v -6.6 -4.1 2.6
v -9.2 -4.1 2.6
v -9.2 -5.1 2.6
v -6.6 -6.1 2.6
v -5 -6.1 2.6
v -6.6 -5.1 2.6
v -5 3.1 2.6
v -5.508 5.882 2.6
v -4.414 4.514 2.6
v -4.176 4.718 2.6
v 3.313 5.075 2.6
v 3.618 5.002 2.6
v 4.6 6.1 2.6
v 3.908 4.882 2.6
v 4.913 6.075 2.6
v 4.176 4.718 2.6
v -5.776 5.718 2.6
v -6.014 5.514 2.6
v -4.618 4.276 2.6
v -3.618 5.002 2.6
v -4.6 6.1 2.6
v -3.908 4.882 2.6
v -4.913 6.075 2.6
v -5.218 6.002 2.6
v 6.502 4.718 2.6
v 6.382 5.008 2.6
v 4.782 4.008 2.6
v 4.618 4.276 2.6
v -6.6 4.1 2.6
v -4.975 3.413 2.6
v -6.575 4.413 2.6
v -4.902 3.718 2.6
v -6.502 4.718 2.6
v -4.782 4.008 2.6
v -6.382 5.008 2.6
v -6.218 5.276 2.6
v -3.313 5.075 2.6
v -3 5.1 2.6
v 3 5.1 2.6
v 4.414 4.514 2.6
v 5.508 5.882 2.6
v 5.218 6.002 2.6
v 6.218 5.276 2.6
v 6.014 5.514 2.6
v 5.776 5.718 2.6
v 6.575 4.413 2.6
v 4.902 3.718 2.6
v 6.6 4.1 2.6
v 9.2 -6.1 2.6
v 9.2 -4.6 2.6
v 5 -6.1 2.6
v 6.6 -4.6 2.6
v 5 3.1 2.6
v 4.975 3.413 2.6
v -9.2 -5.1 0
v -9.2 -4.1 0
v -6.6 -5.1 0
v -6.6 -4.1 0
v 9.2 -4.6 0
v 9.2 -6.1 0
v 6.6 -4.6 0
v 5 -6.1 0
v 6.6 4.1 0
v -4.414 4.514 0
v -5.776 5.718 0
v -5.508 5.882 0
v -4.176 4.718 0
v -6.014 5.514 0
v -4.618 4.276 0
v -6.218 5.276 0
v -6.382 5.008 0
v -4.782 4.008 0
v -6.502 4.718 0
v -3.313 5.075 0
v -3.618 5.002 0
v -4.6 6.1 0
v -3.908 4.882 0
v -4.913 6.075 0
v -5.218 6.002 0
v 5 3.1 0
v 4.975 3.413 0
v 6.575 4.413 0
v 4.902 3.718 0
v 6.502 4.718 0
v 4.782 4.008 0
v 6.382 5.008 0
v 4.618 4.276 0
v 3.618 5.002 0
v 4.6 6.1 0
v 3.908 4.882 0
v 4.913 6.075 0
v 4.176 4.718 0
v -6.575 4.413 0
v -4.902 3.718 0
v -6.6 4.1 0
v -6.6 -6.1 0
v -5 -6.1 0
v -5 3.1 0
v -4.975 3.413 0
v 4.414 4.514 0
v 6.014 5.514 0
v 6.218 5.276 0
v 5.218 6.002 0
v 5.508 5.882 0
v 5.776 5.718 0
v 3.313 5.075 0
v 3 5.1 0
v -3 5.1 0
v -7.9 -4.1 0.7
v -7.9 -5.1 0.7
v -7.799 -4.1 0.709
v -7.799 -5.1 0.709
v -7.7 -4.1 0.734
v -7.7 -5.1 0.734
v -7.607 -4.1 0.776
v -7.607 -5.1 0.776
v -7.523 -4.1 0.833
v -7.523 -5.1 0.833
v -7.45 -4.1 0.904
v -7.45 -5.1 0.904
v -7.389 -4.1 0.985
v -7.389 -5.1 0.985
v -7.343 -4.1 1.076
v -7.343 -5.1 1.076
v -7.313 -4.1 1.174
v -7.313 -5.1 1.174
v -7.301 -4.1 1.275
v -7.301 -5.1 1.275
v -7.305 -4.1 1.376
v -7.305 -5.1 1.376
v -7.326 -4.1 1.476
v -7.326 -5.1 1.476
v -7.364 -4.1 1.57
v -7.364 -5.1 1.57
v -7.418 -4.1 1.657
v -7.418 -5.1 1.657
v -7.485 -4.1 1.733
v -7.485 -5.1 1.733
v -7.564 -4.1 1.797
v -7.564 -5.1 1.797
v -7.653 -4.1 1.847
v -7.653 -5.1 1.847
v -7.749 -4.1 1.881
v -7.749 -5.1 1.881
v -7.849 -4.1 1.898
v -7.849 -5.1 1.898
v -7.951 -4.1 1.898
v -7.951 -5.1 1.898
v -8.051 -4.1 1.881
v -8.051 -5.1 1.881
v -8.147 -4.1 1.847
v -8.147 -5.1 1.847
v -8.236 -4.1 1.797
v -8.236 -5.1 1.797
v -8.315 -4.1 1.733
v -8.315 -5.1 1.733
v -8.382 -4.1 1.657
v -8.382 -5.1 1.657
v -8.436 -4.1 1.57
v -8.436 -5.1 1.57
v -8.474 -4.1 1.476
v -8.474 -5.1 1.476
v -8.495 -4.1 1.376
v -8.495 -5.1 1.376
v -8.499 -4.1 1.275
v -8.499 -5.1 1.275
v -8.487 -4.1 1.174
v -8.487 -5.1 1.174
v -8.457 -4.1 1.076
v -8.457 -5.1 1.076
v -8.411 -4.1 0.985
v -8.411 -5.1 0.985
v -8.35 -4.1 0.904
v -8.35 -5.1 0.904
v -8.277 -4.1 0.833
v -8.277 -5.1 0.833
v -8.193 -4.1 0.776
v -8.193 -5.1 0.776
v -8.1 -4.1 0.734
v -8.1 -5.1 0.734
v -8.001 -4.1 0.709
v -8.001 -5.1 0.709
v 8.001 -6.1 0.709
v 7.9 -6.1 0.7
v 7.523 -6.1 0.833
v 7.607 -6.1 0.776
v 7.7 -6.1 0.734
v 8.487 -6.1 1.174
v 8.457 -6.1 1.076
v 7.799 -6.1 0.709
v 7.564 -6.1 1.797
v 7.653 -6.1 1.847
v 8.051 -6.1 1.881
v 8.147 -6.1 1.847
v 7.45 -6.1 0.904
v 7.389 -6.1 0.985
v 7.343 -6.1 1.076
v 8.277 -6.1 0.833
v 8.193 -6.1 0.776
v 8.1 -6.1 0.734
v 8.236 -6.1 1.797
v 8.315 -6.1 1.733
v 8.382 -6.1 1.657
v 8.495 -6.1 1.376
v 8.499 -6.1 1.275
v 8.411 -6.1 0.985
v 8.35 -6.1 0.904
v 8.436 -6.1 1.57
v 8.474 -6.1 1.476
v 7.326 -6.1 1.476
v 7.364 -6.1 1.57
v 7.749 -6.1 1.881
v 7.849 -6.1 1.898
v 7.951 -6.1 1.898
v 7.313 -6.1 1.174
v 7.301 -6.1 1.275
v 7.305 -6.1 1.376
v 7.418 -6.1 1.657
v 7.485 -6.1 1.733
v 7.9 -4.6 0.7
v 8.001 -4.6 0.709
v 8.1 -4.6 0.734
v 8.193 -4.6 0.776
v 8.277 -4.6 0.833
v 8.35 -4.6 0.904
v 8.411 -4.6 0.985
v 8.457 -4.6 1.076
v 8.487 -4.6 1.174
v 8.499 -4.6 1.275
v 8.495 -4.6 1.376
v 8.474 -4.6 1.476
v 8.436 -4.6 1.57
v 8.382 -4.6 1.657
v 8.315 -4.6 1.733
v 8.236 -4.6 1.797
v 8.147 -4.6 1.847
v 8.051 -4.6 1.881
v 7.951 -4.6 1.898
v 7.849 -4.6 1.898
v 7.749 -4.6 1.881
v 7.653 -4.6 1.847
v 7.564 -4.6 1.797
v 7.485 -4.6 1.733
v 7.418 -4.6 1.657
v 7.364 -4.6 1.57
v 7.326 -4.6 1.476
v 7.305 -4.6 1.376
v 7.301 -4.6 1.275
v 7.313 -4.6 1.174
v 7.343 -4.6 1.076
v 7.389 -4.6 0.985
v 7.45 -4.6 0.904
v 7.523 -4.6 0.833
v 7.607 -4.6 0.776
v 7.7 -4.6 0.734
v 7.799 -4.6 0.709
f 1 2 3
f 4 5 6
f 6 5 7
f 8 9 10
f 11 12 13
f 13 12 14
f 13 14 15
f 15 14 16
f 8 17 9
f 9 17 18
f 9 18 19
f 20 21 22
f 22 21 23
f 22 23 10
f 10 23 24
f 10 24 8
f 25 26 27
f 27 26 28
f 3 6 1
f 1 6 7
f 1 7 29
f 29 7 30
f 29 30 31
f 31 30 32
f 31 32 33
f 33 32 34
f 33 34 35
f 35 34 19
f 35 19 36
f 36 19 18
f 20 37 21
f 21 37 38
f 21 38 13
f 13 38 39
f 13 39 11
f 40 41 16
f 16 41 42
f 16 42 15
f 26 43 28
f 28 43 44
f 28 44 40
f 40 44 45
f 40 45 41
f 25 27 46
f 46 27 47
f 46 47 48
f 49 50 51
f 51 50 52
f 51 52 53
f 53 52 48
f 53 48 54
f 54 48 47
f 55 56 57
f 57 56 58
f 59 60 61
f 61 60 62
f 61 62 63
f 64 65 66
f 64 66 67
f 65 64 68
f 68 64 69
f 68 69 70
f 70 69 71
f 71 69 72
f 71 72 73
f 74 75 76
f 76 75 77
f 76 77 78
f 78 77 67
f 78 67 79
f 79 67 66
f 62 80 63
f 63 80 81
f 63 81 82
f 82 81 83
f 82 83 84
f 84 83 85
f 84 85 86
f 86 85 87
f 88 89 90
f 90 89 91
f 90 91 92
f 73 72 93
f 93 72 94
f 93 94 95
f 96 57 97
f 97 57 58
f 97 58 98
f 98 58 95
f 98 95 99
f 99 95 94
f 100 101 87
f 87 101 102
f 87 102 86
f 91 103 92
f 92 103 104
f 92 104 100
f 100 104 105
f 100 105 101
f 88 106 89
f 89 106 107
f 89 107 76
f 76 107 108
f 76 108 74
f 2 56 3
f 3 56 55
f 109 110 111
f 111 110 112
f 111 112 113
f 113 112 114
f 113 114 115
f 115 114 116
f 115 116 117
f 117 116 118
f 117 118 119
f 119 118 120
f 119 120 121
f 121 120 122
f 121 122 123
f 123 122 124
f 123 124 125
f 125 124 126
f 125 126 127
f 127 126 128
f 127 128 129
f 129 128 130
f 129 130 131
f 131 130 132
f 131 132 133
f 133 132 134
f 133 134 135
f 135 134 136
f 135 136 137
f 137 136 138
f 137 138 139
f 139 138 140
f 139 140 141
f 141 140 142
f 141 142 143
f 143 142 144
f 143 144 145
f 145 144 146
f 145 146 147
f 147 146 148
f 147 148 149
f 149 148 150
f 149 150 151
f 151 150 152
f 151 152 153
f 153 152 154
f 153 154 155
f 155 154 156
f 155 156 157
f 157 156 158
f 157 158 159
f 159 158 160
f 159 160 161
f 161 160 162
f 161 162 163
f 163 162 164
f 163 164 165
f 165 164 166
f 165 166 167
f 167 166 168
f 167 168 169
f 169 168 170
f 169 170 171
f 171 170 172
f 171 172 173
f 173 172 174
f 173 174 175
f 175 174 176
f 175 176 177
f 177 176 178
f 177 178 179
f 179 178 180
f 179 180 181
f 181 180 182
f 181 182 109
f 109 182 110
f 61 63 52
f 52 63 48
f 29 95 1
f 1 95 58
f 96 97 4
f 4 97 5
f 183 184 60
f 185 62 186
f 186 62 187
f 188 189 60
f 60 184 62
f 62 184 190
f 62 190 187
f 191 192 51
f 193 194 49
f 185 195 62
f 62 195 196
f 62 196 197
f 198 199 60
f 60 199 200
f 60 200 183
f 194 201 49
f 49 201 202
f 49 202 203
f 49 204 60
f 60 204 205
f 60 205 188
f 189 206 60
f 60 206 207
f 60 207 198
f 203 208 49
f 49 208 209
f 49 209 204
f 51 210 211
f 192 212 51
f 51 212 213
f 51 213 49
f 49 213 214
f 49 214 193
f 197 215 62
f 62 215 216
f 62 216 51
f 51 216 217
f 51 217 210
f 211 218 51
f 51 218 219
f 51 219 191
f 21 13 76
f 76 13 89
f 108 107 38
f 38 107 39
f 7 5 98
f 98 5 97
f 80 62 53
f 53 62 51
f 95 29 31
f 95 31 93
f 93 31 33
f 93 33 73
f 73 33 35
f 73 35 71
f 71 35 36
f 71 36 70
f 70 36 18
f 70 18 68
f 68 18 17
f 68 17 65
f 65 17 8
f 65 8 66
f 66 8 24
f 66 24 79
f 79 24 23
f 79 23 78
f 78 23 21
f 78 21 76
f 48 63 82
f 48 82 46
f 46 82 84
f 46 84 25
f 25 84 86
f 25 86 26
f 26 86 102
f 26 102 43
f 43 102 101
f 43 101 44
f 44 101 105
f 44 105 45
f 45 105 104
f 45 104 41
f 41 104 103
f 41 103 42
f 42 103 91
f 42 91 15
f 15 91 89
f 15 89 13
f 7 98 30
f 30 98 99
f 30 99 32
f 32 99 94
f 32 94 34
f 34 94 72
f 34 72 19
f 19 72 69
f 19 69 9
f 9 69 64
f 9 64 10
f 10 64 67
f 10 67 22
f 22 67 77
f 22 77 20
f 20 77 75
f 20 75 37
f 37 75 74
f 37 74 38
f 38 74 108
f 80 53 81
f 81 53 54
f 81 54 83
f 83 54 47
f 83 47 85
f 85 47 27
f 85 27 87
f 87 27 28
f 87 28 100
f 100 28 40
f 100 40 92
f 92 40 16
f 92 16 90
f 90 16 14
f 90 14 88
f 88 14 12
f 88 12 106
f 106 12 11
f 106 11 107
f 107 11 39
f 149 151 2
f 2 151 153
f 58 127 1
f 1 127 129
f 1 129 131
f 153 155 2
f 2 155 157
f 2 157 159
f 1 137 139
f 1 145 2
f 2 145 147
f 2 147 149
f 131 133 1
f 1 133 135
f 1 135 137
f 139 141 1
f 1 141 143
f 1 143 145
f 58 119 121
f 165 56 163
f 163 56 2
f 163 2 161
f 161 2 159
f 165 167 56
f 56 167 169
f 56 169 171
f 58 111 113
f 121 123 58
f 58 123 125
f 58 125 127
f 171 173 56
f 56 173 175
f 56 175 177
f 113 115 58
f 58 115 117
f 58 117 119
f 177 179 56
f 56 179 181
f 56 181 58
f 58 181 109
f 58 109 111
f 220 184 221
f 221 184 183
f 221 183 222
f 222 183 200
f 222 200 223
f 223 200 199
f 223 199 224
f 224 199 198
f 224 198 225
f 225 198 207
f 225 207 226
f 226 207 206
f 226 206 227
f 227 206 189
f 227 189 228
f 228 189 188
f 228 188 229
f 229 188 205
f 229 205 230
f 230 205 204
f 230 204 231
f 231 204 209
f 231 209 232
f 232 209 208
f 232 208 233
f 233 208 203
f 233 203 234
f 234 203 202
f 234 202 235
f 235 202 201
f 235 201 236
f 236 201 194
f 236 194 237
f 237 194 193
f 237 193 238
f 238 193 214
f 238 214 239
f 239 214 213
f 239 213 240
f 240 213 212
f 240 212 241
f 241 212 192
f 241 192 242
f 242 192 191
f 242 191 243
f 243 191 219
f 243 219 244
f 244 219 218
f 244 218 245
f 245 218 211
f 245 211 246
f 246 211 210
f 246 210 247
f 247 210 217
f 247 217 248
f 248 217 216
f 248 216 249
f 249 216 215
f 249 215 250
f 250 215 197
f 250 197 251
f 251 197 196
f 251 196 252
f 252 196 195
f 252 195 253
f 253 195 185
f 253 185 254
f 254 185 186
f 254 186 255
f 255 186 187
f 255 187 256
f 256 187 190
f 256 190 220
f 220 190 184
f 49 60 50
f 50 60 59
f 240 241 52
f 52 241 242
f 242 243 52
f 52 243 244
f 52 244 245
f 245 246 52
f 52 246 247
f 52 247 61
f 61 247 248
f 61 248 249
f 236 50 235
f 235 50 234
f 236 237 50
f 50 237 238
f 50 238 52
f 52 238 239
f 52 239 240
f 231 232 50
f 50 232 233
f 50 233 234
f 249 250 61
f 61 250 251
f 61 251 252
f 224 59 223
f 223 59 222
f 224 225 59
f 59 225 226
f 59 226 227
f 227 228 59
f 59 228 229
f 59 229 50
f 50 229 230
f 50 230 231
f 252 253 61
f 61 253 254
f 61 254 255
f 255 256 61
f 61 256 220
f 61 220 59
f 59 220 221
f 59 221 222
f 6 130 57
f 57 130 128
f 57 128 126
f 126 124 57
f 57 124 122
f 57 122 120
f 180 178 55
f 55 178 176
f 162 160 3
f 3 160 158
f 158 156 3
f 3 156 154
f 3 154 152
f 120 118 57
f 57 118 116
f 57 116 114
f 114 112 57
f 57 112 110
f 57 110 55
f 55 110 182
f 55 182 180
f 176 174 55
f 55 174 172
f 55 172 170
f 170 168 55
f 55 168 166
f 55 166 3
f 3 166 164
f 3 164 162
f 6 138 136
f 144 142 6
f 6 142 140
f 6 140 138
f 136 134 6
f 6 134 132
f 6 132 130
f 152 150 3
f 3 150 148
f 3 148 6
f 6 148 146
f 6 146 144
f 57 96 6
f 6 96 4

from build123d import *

# Parameters (mm, degrees)
EXTRUDE_1_DEPTH     = 2.6
FILLET_1_R          = 2
SKETCH_2_W          = 2.6
SKETCH_2_H          = 2.6
SKETCH_2_R          = 0.6
EXTRUDE_2_DEPTH     = 2
SKETCH_4_W          = 2.6
SKETCH_4_H          = 1
SKETCH_4_H_2        = 0.5
CUT_EXTRUDE_1_DEPTH = 12.340634903


with BuildPart() as part:
    # 草图1 → 凸台-拉伸1 (new body)
    with BuildSketch(Plane.XY):
        Polygon((6.6, 6.1), (-6.6, 6.1), (-6.6, -6.1), (-5, -6.1), (-5, 5.1), (5, 5.1), (5, -6.1), (6.6, -6.1), align=None)
    extrude(amount=EXTRUDE_1_DEPTH)

    # 圆角1
    fillet_1_edges = [part.edges().sort_by_distance(p)[0] for p in [
        (5, 5.1, 1.3),
        (-5, 5.1, 1.3),
        (-6.6, 6.1, 1.3),
        (6.6, 6.1, 1.3),
    ]]
    fillet(fillet_1_edges, radius=FILLET_1_R)

    # 草图2 → 凸台-拉伸2 (add)
    # profile 1 of 2: a face of its own
    with BuildSketch(Plane.XZ.offset(6.1)):
        with Locations((-7.9, 1.3)):
            Rectangle(SKETCH_2_W, SKETCH_2_H)
        with Locations(Location((-7.9, 1.3, 0), (0, 0, 270))):
            Circle(SKETCH_2_R, mode=Mode.SUBTRACT)
    # profile 2 of 2: a face of its own
    with BuildSketch(Plane.XZ.offset(6.1)):
        with Locations((7.9, 1.3)):
            Rectangle(SKETCH_2_W, SKETCH_2_H)
        with Locations(Location((7.9, 1.3, 0), (0, 0, 270))):
            Circle(SKETCH_2_R, mode=Mode.SUBTRACT)
    extrude(amount=-EXTRUDE_2_DEPTH)

    # 草图4 → 切除-拉伸1 (cut, through all)
    with BuildSketch(Plane.XY.offset(2.6)):
        with Locations((-7.9, -5.6)):
            Rectangle(SKETCH_4_W, SKETCH_4_H)
        with Locations((7.9, -4.35)):
            Rectangle(SKETCH_4_W, SKETCH_4_H_2)
    extrude(amount=-CUT_EXTRUDE_1_DEPTH, mode=Mode.SUBTRACT)


solid = part.part
